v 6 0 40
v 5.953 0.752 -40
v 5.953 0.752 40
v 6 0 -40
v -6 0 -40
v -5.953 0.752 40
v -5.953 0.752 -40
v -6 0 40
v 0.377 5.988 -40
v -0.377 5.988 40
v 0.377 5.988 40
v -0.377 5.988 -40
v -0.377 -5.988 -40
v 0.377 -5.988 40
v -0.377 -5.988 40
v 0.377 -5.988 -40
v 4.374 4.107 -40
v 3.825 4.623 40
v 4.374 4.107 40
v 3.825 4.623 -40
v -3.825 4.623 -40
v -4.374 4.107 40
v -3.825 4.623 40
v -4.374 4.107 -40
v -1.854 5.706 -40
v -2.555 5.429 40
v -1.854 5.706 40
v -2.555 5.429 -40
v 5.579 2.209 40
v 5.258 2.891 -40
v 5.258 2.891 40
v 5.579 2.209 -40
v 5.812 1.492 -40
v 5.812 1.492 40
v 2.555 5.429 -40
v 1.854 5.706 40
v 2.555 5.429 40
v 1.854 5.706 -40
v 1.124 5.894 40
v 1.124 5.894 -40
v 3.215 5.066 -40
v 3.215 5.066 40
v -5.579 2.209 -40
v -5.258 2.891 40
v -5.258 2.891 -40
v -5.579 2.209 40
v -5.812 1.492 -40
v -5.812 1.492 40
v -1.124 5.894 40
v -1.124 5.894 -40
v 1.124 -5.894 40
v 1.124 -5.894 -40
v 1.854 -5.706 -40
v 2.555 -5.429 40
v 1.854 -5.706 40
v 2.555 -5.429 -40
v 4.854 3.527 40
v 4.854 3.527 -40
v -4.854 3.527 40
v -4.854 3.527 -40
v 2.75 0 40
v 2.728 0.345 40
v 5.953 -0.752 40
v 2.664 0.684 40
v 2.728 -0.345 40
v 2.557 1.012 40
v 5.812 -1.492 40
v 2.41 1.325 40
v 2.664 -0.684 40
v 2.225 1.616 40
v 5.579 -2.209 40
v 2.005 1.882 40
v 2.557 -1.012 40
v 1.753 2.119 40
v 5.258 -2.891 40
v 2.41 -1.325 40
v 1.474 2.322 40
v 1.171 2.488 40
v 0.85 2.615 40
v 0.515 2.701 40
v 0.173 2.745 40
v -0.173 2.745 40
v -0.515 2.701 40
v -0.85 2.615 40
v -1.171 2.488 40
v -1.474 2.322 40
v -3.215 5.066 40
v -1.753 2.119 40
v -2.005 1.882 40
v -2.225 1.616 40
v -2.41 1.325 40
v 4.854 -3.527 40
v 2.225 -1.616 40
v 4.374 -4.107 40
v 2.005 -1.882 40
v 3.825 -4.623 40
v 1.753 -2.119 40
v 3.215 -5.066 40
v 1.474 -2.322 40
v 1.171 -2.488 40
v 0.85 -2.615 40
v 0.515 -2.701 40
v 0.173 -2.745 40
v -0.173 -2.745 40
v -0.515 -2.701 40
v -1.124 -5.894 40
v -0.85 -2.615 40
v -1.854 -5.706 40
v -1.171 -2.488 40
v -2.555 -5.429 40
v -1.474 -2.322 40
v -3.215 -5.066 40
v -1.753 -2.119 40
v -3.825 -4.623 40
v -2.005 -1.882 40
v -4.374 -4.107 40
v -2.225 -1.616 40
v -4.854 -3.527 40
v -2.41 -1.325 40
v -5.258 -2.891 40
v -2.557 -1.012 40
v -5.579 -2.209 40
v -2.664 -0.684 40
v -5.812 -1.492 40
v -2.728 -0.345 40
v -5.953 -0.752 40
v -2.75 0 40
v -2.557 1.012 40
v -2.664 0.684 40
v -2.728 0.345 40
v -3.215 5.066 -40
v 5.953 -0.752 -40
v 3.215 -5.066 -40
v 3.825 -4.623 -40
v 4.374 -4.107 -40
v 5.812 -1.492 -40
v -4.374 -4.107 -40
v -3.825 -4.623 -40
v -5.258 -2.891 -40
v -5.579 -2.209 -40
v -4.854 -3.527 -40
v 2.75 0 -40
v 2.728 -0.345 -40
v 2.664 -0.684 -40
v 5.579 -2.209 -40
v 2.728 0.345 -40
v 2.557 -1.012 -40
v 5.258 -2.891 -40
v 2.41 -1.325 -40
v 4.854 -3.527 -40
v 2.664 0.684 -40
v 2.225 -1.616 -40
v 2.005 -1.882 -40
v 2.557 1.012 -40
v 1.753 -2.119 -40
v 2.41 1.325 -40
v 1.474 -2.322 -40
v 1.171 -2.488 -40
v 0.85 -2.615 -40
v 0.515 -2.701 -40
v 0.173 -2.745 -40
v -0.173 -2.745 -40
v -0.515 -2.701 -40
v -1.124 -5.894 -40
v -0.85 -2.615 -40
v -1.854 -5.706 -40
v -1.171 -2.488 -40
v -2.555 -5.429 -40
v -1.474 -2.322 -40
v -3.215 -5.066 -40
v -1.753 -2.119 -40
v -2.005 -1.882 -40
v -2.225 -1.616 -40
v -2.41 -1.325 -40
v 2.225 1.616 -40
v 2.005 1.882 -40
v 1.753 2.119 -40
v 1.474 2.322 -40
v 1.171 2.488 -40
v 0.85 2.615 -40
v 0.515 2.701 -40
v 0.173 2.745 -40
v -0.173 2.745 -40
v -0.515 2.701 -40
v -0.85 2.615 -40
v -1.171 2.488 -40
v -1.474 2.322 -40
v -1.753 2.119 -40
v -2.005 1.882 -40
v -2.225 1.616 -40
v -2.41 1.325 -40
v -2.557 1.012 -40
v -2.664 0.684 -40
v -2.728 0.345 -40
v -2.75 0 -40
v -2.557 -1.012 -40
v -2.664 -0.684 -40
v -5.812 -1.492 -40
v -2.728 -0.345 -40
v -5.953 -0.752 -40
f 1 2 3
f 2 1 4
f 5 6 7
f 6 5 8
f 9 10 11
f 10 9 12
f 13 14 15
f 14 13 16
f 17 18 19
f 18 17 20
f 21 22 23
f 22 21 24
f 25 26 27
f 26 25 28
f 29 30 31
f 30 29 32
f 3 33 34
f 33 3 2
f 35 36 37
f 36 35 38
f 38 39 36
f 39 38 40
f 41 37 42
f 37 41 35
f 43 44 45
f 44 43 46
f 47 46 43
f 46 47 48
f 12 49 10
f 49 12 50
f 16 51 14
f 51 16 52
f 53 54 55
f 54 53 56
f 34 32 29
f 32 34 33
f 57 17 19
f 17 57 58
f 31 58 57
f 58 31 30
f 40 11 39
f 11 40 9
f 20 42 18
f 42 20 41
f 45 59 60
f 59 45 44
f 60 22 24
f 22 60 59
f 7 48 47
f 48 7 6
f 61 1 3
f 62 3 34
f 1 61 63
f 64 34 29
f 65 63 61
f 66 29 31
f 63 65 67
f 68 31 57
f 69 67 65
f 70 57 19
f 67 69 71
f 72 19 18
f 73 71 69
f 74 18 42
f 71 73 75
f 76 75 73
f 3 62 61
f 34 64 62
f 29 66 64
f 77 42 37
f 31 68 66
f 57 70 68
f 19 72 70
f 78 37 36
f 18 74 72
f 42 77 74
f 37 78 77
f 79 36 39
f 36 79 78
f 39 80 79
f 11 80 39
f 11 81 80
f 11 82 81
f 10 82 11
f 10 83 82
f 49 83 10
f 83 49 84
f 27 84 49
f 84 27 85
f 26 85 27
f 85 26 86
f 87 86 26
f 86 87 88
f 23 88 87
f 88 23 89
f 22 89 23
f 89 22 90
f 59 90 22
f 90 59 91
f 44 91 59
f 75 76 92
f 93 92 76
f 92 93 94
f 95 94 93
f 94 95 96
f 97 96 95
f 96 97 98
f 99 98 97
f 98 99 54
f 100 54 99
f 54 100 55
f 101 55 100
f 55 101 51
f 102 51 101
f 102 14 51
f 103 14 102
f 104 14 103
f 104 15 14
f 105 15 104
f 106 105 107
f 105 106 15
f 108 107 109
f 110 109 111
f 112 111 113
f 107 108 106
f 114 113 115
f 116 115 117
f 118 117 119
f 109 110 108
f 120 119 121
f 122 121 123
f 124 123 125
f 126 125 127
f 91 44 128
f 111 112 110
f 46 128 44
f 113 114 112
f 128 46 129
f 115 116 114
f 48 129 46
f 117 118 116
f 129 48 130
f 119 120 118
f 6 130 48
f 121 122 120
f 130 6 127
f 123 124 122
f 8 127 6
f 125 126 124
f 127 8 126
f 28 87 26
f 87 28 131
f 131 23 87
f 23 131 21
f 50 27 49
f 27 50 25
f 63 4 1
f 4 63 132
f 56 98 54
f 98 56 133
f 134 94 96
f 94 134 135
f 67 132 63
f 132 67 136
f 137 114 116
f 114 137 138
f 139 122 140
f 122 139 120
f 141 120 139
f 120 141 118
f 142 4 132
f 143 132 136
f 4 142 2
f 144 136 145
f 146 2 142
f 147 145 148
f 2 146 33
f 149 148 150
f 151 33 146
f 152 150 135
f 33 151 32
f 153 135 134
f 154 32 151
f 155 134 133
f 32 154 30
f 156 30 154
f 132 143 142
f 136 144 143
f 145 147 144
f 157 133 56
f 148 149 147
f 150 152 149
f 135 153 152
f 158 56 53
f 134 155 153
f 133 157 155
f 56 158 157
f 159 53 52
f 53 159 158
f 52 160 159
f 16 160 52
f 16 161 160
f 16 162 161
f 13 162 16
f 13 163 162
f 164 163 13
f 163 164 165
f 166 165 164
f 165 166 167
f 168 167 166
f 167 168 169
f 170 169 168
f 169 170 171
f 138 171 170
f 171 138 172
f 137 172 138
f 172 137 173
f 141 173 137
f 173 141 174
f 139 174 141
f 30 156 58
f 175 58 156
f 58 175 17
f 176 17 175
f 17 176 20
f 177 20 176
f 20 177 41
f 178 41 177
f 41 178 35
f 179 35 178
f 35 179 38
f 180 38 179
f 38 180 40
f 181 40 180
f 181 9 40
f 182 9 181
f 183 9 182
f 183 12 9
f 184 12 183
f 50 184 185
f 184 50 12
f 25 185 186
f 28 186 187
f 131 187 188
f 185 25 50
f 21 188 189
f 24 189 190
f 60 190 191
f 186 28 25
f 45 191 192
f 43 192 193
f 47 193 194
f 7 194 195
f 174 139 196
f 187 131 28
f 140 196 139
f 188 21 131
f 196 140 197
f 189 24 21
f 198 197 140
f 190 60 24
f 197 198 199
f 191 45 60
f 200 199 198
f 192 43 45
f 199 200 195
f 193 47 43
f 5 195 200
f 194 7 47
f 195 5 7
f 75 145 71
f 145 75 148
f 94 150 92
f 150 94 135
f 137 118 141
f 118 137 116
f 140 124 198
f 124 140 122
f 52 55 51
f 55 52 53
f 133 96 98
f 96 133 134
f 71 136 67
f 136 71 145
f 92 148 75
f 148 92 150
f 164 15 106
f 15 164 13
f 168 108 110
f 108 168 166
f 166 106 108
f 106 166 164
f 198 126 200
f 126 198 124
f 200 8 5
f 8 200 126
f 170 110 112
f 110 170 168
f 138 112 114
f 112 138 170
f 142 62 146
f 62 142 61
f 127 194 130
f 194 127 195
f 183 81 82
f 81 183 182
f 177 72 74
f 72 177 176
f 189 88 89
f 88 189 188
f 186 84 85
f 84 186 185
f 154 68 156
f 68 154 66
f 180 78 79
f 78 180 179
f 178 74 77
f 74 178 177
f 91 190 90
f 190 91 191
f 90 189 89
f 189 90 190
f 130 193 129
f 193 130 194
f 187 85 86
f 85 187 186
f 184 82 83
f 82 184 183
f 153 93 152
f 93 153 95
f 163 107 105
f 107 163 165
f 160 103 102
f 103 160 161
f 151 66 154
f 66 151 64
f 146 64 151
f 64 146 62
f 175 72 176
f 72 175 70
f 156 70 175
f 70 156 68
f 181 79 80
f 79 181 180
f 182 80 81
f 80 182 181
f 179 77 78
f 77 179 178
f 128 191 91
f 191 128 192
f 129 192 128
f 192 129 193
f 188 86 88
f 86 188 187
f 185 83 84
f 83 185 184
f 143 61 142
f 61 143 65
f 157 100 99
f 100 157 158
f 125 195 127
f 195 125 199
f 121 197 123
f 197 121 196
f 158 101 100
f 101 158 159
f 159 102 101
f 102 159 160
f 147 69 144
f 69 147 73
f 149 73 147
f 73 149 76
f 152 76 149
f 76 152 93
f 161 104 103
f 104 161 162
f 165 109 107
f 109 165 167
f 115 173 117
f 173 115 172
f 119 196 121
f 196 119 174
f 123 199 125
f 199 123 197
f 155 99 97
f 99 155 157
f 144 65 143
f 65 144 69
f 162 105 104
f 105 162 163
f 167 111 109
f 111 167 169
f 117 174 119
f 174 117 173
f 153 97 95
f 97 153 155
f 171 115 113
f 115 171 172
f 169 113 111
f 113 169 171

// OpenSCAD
$fn = 50;


difference() {
	union() {
		translate(v = [0, 0, -40.0000000000]) {
			cylinder(h = 80, r = 6.0000000000);
		}
	}
	union() {
		translate(v = [0, 0, -100.0000000000]) {
			cylinder(h = 200, r = 2.7500000000);
		}
	}
}
